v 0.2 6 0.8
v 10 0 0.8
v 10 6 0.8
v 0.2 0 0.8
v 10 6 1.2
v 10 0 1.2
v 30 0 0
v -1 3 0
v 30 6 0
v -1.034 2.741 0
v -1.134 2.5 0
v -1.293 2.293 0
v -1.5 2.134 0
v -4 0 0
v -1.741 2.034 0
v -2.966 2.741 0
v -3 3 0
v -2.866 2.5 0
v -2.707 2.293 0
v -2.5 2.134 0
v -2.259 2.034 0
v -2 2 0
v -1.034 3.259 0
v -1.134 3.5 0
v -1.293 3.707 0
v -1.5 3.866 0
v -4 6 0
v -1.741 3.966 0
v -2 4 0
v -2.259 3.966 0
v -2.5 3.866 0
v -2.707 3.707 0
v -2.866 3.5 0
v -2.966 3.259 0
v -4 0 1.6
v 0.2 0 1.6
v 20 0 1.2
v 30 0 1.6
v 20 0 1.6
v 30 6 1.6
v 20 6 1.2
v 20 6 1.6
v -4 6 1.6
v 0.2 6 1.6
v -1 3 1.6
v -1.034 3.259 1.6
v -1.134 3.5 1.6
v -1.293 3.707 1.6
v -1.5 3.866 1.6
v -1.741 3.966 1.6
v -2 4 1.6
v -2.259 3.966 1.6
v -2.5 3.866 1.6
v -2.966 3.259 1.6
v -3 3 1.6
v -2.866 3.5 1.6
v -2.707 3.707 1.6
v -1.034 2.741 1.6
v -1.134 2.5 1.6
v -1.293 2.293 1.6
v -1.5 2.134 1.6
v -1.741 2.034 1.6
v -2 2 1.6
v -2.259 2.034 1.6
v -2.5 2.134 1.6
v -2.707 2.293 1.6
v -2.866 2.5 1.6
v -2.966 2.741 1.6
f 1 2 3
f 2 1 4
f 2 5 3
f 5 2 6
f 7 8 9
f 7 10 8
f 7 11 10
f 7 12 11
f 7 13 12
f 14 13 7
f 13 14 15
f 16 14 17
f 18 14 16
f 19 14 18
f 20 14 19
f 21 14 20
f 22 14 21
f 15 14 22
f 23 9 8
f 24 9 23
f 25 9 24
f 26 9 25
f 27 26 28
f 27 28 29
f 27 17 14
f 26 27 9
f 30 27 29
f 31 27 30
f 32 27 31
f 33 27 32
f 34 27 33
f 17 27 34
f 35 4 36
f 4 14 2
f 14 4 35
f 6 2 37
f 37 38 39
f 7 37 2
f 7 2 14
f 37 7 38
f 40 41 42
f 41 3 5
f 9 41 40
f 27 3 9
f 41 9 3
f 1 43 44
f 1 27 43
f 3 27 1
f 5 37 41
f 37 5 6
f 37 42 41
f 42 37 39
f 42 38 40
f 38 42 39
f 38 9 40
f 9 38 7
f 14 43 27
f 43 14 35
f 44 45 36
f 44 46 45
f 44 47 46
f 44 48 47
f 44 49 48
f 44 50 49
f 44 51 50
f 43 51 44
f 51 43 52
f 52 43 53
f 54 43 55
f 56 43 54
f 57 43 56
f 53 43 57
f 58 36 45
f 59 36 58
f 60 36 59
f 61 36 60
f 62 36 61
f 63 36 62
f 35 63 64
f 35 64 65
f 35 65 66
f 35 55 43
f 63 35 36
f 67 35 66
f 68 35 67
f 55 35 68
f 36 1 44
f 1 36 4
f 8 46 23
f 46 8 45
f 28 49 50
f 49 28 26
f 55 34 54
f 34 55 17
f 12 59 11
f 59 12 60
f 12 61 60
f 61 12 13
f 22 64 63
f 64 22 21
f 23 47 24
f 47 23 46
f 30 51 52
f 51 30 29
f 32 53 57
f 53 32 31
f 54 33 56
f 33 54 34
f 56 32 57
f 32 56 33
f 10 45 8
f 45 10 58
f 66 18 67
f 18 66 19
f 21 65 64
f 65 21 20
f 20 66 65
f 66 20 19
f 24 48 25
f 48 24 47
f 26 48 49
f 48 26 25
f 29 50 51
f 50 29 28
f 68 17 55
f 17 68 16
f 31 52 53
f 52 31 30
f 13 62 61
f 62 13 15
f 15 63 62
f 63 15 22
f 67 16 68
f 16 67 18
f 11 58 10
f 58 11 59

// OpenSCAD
// Paprastas modelis lanksčioms dervoms: juostelė su trimis storiais.
// Lenkiama per pusę: turi grįžti į formą ir neįtrūkti. Storiausia dalis
// parodo, ar derva išlieka lanksti storesniame sluoksnyje.
th = [0.8, 1.2, 1.6];
seg = 10; w = 6;
for (i = [0:len(th)-1]) translate([i*seg, 0, 0]) cube([seg, w, th[i]]);
// ąselė galui sugriebti
translate([-4, 0, 0]) difference() { cube([4.2, w, 1.6]); translate([2, w/2, -0.1]) cylinder(d = 2, h = 2, $fn = 24); }
